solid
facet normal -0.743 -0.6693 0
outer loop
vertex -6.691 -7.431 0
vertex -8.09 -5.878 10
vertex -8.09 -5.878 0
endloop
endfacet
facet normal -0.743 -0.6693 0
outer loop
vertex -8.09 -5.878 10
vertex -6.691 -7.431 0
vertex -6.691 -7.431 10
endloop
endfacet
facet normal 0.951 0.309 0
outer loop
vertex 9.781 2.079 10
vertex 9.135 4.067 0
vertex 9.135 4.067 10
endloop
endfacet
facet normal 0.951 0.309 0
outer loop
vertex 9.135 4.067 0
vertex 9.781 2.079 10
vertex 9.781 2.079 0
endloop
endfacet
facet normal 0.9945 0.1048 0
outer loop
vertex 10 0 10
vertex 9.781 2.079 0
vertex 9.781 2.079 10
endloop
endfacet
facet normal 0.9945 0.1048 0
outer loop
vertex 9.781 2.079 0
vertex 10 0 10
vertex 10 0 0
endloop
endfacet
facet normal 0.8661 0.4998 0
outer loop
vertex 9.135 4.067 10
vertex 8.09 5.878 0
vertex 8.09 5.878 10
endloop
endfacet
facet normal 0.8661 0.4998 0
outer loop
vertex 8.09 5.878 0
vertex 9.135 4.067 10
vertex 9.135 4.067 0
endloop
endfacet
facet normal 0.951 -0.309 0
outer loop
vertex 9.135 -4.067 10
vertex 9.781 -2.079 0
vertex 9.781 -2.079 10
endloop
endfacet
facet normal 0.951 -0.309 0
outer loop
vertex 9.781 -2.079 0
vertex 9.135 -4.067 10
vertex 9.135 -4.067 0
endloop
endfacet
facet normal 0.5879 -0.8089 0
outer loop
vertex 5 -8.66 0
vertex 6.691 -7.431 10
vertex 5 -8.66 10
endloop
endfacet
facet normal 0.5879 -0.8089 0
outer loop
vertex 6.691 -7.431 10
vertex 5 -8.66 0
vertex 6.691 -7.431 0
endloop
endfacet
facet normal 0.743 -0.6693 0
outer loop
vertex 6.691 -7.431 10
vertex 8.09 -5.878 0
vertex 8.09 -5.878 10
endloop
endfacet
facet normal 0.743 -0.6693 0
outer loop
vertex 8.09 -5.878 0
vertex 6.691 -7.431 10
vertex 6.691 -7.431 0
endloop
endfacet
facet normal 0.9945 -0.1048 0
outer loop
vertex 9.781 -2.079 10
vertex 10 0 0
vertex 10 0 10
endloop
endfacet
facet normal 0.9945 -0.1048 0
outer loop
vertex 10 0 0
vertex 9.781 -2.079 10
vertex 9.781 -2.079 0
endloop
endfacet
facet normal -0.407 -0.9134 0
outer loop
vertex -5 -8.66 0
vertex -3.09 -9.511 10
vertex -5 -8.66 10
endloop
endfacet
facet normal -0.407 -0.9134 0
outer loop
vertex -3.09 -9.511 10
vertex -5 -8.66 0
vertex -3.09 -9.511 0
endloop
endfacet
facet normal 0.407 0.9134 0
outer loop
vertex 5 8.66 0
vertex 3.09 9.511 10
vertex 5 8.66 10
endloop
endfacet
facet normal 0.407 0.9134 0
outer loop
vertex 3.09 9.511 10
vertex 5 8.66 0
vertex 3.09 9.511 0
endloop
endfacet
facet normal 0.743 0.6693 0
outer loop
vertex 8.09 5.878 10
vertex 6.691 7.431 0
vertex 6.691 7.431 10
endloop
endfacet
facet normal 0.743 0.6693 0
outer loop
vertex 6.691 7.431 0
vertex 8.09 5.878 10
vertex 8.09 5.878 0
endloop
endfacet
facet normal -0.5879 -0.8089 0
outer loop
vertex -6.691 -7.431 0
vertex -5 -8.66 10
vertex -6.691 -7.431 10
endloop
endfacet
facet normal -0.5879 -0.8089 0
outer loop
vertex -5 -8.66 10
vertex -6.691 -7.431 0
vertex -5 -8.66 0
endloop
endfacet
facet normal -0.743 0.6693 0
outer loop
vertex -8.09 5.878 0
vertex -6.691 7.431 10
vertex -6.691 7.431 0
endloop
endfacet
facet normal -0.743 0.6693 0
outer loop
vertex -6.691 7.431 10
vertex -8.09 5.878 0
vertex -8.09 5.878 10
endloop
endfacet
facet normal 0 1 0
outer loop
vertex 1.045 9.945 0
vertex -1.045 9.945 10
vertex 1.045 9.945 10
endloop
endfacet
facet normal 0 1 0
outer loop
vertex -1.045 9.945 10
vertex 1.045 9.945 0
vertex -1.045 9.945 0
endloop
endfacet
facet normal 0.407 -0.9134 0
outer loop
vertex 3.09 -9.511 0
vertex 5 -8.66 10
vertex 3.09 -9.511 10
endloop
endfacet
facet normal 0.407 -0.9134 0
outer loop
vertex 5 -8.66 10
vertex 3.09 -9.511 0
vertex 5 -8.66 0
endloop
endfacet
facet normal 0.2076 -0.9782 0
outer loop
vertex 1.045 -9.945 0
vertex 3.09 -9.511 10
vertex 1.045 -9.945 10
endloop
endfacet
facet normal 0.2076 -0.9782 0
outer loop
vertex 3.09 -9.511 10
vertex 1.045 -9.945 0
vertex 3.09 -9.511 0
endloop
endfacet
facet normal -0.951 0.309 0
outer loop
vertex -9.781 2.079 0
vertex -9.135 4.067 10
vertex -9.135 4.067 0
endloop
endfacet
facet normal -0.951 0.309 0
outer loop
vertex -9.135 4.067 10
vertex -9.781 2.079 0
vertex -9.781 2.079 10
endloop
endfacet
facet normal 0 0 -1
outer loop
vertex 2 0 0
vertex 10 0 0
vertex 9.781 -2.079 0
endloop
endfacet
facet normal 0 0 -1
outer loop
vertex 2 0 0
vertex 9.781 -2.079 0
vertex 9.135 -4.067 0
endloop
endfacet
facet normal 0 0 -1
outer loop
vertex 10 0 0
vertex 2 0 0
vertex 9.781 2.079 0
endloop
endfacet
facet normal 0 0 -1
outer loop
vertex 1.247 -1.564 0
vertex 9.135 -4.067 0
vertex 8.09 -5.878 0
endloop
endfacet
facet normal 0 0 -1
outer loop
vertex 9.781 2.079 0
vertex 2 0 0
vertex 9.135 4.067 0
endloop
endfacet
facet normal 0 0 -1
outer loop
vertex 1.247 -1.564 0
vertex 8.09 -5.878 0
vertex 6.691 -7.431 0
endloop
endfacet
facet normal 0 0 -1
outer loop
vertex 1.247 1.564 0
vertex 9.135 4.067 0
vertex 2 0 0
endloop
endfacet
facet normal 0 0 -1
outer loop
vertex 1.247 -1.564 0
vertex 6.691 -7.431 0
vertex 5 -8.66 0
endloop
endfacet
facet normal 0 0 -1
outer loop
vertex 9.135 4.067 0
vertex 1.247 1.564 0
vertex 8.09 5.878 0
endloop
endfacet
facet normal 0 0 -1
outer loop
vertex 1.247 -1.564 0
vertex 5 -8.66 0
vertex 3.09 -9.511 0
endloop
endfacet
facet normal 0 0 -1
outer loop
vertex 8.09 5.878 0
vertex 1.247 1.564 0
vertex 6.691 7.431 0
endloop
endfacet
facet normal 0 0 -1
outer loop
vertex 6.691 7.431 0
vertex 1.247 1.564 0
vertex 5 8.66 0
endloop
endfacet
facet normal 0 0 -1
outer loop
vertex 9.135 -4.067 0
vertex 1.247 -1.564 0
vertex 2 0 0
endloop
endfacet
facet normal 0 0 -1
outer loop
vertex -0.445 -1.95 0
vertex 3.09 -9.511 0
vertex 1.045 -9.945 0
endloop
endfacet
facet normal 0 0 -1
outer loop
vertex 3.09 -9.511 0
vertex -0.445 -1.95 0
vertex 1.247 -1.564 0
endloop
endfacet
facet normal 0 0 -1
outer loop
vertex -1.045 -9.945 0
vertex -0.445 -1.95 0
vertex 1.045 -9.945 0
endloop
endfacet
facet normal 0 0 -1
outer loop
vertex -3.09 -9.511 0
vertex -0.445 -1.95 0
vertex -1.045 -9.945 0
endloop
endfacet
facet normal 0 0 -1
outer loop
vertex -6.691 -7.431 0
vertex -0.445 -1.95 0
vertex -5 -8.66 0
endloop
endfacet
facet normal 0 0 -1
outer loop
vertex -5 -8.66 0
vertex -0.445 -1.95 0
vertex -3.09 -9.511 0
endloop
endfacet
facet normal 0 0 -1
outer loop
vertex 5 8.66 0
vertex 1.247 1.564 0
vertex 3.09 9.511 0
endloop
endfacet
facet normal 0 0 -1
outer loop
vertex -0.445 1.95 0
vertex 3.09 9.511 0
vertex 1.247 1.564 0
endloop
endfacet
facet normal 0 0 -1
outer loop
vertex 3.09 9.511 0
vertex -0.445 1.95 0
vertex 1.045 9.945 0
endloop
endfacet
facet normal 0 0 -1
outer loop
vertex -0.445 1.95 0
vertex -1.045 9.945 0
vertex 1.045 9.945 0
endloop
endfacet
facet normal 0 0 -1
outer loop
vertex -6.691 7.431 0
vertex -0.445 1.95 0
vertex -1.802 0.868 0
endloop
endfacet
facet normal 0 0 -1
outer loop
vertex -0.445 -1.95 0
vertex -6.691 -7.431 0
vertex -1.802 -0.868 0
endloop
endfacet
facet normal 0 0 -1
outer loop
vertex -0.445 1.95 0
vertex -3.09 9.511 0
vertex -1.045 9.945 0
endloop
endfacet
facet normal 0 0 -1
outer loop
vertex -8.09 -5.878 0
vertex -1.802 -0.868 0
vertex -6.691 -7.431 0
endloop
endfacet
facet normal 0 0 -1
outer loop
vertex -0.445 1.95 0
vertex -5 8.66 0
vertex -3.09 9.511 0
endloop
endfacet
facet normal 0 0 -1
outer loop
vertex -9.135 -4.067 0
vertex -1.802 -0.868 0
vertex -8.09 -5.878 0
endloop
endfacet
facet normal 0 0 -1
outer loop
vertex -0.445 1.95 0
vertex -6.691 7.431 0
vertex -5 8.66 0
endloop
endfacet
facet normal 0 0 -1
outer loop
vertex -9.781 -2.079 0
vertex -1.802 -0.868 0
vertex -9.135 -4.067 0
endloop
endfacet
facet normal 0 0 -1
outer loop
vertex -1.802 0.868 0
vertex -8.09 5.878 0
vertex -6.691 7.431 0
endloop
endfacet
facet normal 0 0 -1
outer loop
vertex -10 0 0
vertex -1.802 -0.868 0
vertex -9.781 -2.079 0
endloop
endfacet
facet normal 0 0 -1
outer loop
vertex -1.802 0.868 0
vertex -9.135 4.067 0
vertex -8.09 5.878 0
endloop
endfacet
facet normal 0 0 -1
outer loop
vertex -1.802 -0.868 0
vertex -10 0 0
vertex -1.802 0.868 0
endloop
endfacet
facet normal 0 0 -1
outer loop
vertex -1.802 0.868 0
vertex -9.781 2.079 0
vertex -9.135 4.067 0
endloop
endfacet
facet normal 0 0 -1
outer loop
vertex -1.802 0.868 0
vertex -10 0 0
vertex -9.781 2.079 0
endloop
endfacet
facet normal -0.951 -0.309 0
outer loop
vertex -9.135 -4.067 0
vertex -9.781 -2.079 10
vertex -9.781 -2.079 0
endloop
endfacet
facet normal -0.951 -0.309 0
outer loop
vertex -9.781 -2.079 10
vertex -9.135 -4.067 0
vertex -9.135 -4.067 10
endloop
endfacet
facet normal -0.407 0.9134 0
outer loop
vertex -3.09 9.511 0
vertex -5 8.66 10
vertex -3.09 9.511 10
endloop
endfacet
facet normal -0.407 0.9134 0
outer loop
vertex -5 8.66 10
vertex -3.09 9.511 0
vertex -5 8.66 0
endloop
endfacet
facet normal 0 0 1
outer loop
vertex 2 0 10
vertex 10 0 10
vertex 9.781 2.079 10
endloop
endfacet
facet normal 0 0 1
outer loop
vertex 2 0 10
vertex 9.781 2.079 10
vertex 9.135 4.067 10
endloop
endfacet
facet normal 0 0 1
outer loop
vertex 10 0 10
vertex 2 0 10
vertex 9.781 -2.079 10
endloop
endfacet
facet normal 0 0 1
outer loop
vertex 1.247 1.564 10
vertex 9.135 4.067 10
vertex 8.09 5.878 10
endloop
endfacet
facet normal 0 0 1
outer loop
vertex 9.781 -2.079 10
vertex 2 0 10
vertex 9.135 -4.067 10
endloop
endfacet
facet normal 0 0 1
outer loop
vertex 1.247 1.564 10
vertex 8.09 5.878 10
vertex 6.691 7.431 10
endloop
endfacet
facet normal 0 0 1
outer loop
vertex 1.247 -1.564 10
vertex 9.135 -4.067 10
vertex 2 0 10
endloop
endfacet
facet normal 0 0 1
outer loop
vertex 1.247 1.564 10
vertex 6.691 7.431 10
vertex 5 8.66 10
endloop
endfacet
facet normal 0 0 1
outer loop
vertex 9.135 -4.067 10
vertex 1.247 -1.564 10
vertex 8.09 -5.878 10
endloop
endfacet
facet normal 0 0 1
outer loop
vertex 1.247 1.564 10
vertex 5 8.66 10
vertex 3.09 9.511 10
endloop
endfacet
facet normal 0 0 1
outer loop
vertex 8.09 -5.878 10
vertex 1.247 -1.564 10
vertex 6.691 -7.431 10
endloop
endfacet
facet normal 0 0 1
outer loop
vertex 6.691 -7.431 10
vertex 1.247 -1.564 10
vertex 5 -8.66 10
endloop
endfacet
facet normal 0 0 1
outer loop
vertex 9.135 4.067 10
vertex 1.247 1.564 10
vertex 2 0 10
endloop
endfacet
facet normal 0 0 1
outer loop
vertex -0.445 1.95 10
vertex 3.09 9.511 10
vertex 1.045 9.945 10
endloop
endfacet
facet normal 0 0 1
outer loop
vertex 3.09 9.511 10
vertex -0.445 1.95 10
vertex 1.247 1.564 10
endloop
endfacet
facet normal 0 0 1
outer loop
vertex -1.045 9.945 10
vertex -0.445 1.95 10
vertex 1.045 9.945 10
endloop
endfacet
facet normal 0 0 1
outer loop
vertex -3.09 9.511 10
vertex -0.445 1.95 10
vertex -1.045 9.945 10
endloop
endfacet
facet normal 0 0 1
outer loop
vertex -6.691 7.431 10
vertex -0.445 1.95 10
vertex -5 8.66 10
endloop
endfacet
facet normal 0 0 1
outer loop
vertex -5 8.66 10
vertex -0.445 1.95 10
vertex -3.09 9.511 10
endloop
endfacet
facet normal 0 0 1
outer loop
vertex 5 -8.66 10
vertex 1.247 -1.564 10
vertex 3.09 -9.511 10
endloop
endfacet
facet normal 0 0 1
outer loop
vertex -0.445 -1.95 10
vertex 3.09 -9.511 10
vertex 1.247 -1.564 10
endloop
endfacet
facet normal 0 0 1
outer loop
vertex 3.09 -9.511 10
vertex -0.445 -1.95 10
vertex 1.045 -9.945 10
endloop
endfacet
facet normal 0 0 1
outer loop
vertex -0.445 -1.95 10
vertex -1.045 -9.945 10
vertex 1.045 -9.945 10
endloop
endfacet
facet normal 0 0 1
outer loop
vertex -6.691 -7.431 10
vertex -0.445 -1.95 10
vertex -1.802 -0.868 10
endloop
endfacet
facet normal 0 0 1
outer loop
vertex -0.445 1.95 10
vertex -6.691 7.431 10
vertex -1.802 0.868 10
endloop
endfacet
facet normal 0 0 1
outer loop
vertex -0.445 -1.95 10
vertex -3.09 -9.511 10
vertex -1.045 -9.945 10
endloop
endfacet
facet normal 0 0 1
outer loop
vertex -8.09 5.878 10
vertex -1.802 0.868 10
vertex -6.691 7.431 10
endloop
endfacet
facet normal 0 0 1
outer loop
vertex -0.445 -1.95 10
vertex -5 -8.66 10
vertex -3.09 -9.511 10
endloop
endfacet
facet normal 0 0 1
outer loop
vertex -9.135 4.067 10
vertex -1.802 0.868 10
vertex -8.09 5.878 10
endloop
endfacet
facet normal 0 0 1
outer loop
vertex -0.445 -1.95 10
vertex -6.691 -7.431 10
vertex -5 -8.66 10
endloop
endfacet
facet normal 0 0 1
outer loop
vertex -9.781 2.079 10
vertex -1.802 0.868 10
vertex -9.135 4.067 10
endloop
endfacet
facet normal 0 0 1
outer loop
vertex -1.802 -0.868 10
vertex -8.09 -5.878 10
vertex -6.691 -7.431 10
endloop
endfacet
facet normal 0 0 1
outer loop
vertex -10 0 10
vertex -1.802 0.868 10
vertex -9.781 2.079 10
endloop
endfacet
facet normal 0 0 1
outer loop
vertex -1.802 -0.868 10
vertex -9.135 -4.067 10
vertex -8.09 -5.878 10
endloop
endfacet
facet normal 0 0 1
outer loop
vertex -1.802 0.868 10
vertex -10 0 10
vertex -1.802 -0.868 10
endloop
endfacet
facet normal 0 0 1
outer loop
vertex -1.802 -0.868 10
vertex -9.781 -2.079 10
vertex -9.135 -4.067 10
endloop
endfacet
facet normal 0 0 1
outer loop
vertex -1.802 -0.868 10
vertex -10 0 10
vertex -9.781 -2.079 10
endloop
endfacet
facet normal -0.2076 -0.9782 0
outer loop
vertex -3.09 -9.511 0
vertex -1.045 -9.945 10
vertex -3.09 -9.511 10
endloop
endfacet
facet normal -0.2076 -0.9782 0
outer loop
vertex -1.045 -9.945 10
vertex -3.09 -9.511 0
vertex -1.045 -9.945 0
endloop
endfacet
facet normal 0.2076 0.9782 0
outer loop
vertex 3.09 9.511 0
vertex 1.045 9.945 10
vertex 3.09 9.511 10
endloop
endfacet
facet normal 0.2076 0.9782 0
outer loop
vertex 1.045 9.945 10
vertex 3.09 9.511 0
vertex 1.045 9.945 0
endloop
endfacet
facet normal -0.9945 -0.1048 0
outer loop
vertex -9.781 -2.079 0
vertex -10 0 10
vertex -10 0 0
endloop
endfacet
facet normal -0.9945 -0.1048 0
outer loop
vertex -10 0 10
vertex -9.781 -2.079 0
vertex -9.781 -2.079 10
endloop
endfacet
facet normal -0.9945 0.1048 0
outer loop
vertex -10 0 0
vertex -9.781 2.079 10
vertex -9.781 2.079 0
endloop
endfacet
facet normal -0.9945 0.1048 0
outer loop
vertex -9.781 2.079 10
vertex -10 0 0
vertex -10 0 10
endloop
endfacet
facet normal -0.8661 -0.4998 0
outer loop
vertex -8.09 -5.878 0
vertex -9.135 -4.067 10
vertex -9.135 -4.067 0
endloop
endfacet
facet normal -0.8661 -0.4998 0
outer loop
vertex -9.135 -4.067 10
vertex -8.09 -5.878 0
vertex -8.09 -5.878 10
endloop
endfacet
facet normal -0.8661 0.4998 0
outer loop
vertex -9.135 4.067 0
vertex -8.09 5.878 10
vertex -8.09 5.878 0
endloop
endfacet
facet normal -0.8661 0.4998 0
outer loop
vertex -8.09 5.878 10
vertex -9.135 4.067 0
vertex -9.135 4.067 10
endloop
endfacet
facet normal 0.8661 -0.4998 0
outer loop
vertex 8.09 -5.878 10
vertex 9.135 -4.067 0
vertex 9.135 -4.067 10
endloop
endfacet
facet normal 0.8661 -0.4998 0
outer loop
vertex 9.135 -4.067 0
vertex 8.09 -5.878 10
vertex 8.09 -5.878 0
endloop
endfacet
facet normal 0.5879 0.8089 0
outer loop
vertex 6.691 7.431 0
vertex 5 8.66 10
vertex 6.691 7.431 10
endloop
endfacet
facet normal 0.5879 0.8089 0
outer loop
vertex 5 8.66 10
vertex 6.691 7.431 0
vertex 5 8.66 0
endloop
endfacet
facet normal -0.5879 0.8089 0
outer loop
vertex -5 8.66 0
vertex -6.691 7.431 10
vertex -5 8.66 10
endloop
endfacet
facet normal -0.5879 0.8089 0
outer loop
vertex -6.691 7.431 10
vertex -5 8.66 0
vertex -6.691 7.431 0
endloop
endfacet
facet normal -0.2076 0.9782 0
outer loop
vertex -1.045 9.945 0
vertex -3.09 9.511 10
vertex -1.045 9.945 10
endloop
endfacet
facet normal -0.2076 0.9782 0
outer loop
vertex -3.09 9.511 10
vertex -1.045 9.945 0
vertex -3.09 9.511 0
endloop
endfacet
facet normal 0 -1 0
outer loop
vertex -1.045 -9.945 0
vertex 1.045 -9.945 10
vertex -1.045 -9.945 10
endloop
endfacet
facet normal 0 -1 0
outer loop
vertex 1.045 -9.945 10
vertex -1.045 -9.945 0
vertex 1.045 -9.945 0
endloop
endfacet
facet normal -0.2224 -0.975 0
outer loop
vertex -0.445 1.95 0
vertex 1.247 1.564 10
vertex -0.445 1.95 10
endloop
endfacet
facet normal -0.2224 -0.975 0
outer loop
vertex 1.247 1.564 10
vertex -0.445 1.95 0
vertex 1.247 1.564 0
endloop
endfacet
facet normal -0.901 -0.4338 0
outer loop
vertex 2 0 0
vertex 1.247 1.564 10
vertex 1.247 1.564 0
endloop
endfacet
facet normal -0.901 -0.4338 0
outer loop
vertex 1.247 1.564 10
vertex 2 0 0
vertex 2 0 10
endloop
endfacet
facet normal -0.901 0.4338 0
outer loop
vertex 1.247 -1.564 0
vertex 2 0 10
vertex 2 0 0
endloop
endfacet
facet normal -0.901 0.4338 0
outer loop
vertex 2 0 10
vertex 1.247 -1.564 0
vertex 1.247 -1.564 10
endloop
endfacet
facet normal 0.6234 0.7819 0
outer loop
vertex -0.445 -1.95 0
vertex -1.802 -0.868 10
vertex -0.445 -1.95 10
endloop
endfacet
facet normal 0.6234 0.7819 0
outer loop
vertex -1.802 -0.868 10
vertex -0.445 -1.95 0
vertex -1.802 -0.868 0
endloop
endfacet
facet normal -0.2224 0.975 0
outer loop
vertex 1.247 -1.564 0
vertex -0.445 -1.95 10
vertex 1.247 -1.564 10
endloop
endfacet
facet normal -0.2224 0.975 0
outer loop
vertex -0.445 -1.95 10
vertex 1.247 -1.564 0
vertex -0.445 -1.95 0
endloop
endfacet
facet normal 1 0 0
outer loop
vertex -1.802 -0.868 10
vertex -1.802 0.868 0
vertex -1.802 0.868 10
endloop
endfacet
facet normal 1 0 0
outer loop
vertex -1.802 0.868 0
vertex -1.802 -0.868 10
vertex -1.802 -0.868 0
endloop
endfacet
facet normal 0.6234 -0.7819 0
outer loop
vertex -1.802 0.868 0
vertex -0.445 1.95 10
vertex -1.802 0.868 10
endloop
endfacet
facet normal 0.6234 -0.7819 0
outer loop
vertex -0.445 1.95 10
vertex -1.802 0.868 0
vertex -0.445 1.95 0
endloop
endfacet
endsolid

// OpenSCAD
outer_diameter = 20.000000;
inner_diameter = 4.000000;
thickness = 10.000000;

difference() {
    cylinder(d = outer_diameter, h = thickness);
    cylinder(d = inner_diameter, h = thickness);
}
